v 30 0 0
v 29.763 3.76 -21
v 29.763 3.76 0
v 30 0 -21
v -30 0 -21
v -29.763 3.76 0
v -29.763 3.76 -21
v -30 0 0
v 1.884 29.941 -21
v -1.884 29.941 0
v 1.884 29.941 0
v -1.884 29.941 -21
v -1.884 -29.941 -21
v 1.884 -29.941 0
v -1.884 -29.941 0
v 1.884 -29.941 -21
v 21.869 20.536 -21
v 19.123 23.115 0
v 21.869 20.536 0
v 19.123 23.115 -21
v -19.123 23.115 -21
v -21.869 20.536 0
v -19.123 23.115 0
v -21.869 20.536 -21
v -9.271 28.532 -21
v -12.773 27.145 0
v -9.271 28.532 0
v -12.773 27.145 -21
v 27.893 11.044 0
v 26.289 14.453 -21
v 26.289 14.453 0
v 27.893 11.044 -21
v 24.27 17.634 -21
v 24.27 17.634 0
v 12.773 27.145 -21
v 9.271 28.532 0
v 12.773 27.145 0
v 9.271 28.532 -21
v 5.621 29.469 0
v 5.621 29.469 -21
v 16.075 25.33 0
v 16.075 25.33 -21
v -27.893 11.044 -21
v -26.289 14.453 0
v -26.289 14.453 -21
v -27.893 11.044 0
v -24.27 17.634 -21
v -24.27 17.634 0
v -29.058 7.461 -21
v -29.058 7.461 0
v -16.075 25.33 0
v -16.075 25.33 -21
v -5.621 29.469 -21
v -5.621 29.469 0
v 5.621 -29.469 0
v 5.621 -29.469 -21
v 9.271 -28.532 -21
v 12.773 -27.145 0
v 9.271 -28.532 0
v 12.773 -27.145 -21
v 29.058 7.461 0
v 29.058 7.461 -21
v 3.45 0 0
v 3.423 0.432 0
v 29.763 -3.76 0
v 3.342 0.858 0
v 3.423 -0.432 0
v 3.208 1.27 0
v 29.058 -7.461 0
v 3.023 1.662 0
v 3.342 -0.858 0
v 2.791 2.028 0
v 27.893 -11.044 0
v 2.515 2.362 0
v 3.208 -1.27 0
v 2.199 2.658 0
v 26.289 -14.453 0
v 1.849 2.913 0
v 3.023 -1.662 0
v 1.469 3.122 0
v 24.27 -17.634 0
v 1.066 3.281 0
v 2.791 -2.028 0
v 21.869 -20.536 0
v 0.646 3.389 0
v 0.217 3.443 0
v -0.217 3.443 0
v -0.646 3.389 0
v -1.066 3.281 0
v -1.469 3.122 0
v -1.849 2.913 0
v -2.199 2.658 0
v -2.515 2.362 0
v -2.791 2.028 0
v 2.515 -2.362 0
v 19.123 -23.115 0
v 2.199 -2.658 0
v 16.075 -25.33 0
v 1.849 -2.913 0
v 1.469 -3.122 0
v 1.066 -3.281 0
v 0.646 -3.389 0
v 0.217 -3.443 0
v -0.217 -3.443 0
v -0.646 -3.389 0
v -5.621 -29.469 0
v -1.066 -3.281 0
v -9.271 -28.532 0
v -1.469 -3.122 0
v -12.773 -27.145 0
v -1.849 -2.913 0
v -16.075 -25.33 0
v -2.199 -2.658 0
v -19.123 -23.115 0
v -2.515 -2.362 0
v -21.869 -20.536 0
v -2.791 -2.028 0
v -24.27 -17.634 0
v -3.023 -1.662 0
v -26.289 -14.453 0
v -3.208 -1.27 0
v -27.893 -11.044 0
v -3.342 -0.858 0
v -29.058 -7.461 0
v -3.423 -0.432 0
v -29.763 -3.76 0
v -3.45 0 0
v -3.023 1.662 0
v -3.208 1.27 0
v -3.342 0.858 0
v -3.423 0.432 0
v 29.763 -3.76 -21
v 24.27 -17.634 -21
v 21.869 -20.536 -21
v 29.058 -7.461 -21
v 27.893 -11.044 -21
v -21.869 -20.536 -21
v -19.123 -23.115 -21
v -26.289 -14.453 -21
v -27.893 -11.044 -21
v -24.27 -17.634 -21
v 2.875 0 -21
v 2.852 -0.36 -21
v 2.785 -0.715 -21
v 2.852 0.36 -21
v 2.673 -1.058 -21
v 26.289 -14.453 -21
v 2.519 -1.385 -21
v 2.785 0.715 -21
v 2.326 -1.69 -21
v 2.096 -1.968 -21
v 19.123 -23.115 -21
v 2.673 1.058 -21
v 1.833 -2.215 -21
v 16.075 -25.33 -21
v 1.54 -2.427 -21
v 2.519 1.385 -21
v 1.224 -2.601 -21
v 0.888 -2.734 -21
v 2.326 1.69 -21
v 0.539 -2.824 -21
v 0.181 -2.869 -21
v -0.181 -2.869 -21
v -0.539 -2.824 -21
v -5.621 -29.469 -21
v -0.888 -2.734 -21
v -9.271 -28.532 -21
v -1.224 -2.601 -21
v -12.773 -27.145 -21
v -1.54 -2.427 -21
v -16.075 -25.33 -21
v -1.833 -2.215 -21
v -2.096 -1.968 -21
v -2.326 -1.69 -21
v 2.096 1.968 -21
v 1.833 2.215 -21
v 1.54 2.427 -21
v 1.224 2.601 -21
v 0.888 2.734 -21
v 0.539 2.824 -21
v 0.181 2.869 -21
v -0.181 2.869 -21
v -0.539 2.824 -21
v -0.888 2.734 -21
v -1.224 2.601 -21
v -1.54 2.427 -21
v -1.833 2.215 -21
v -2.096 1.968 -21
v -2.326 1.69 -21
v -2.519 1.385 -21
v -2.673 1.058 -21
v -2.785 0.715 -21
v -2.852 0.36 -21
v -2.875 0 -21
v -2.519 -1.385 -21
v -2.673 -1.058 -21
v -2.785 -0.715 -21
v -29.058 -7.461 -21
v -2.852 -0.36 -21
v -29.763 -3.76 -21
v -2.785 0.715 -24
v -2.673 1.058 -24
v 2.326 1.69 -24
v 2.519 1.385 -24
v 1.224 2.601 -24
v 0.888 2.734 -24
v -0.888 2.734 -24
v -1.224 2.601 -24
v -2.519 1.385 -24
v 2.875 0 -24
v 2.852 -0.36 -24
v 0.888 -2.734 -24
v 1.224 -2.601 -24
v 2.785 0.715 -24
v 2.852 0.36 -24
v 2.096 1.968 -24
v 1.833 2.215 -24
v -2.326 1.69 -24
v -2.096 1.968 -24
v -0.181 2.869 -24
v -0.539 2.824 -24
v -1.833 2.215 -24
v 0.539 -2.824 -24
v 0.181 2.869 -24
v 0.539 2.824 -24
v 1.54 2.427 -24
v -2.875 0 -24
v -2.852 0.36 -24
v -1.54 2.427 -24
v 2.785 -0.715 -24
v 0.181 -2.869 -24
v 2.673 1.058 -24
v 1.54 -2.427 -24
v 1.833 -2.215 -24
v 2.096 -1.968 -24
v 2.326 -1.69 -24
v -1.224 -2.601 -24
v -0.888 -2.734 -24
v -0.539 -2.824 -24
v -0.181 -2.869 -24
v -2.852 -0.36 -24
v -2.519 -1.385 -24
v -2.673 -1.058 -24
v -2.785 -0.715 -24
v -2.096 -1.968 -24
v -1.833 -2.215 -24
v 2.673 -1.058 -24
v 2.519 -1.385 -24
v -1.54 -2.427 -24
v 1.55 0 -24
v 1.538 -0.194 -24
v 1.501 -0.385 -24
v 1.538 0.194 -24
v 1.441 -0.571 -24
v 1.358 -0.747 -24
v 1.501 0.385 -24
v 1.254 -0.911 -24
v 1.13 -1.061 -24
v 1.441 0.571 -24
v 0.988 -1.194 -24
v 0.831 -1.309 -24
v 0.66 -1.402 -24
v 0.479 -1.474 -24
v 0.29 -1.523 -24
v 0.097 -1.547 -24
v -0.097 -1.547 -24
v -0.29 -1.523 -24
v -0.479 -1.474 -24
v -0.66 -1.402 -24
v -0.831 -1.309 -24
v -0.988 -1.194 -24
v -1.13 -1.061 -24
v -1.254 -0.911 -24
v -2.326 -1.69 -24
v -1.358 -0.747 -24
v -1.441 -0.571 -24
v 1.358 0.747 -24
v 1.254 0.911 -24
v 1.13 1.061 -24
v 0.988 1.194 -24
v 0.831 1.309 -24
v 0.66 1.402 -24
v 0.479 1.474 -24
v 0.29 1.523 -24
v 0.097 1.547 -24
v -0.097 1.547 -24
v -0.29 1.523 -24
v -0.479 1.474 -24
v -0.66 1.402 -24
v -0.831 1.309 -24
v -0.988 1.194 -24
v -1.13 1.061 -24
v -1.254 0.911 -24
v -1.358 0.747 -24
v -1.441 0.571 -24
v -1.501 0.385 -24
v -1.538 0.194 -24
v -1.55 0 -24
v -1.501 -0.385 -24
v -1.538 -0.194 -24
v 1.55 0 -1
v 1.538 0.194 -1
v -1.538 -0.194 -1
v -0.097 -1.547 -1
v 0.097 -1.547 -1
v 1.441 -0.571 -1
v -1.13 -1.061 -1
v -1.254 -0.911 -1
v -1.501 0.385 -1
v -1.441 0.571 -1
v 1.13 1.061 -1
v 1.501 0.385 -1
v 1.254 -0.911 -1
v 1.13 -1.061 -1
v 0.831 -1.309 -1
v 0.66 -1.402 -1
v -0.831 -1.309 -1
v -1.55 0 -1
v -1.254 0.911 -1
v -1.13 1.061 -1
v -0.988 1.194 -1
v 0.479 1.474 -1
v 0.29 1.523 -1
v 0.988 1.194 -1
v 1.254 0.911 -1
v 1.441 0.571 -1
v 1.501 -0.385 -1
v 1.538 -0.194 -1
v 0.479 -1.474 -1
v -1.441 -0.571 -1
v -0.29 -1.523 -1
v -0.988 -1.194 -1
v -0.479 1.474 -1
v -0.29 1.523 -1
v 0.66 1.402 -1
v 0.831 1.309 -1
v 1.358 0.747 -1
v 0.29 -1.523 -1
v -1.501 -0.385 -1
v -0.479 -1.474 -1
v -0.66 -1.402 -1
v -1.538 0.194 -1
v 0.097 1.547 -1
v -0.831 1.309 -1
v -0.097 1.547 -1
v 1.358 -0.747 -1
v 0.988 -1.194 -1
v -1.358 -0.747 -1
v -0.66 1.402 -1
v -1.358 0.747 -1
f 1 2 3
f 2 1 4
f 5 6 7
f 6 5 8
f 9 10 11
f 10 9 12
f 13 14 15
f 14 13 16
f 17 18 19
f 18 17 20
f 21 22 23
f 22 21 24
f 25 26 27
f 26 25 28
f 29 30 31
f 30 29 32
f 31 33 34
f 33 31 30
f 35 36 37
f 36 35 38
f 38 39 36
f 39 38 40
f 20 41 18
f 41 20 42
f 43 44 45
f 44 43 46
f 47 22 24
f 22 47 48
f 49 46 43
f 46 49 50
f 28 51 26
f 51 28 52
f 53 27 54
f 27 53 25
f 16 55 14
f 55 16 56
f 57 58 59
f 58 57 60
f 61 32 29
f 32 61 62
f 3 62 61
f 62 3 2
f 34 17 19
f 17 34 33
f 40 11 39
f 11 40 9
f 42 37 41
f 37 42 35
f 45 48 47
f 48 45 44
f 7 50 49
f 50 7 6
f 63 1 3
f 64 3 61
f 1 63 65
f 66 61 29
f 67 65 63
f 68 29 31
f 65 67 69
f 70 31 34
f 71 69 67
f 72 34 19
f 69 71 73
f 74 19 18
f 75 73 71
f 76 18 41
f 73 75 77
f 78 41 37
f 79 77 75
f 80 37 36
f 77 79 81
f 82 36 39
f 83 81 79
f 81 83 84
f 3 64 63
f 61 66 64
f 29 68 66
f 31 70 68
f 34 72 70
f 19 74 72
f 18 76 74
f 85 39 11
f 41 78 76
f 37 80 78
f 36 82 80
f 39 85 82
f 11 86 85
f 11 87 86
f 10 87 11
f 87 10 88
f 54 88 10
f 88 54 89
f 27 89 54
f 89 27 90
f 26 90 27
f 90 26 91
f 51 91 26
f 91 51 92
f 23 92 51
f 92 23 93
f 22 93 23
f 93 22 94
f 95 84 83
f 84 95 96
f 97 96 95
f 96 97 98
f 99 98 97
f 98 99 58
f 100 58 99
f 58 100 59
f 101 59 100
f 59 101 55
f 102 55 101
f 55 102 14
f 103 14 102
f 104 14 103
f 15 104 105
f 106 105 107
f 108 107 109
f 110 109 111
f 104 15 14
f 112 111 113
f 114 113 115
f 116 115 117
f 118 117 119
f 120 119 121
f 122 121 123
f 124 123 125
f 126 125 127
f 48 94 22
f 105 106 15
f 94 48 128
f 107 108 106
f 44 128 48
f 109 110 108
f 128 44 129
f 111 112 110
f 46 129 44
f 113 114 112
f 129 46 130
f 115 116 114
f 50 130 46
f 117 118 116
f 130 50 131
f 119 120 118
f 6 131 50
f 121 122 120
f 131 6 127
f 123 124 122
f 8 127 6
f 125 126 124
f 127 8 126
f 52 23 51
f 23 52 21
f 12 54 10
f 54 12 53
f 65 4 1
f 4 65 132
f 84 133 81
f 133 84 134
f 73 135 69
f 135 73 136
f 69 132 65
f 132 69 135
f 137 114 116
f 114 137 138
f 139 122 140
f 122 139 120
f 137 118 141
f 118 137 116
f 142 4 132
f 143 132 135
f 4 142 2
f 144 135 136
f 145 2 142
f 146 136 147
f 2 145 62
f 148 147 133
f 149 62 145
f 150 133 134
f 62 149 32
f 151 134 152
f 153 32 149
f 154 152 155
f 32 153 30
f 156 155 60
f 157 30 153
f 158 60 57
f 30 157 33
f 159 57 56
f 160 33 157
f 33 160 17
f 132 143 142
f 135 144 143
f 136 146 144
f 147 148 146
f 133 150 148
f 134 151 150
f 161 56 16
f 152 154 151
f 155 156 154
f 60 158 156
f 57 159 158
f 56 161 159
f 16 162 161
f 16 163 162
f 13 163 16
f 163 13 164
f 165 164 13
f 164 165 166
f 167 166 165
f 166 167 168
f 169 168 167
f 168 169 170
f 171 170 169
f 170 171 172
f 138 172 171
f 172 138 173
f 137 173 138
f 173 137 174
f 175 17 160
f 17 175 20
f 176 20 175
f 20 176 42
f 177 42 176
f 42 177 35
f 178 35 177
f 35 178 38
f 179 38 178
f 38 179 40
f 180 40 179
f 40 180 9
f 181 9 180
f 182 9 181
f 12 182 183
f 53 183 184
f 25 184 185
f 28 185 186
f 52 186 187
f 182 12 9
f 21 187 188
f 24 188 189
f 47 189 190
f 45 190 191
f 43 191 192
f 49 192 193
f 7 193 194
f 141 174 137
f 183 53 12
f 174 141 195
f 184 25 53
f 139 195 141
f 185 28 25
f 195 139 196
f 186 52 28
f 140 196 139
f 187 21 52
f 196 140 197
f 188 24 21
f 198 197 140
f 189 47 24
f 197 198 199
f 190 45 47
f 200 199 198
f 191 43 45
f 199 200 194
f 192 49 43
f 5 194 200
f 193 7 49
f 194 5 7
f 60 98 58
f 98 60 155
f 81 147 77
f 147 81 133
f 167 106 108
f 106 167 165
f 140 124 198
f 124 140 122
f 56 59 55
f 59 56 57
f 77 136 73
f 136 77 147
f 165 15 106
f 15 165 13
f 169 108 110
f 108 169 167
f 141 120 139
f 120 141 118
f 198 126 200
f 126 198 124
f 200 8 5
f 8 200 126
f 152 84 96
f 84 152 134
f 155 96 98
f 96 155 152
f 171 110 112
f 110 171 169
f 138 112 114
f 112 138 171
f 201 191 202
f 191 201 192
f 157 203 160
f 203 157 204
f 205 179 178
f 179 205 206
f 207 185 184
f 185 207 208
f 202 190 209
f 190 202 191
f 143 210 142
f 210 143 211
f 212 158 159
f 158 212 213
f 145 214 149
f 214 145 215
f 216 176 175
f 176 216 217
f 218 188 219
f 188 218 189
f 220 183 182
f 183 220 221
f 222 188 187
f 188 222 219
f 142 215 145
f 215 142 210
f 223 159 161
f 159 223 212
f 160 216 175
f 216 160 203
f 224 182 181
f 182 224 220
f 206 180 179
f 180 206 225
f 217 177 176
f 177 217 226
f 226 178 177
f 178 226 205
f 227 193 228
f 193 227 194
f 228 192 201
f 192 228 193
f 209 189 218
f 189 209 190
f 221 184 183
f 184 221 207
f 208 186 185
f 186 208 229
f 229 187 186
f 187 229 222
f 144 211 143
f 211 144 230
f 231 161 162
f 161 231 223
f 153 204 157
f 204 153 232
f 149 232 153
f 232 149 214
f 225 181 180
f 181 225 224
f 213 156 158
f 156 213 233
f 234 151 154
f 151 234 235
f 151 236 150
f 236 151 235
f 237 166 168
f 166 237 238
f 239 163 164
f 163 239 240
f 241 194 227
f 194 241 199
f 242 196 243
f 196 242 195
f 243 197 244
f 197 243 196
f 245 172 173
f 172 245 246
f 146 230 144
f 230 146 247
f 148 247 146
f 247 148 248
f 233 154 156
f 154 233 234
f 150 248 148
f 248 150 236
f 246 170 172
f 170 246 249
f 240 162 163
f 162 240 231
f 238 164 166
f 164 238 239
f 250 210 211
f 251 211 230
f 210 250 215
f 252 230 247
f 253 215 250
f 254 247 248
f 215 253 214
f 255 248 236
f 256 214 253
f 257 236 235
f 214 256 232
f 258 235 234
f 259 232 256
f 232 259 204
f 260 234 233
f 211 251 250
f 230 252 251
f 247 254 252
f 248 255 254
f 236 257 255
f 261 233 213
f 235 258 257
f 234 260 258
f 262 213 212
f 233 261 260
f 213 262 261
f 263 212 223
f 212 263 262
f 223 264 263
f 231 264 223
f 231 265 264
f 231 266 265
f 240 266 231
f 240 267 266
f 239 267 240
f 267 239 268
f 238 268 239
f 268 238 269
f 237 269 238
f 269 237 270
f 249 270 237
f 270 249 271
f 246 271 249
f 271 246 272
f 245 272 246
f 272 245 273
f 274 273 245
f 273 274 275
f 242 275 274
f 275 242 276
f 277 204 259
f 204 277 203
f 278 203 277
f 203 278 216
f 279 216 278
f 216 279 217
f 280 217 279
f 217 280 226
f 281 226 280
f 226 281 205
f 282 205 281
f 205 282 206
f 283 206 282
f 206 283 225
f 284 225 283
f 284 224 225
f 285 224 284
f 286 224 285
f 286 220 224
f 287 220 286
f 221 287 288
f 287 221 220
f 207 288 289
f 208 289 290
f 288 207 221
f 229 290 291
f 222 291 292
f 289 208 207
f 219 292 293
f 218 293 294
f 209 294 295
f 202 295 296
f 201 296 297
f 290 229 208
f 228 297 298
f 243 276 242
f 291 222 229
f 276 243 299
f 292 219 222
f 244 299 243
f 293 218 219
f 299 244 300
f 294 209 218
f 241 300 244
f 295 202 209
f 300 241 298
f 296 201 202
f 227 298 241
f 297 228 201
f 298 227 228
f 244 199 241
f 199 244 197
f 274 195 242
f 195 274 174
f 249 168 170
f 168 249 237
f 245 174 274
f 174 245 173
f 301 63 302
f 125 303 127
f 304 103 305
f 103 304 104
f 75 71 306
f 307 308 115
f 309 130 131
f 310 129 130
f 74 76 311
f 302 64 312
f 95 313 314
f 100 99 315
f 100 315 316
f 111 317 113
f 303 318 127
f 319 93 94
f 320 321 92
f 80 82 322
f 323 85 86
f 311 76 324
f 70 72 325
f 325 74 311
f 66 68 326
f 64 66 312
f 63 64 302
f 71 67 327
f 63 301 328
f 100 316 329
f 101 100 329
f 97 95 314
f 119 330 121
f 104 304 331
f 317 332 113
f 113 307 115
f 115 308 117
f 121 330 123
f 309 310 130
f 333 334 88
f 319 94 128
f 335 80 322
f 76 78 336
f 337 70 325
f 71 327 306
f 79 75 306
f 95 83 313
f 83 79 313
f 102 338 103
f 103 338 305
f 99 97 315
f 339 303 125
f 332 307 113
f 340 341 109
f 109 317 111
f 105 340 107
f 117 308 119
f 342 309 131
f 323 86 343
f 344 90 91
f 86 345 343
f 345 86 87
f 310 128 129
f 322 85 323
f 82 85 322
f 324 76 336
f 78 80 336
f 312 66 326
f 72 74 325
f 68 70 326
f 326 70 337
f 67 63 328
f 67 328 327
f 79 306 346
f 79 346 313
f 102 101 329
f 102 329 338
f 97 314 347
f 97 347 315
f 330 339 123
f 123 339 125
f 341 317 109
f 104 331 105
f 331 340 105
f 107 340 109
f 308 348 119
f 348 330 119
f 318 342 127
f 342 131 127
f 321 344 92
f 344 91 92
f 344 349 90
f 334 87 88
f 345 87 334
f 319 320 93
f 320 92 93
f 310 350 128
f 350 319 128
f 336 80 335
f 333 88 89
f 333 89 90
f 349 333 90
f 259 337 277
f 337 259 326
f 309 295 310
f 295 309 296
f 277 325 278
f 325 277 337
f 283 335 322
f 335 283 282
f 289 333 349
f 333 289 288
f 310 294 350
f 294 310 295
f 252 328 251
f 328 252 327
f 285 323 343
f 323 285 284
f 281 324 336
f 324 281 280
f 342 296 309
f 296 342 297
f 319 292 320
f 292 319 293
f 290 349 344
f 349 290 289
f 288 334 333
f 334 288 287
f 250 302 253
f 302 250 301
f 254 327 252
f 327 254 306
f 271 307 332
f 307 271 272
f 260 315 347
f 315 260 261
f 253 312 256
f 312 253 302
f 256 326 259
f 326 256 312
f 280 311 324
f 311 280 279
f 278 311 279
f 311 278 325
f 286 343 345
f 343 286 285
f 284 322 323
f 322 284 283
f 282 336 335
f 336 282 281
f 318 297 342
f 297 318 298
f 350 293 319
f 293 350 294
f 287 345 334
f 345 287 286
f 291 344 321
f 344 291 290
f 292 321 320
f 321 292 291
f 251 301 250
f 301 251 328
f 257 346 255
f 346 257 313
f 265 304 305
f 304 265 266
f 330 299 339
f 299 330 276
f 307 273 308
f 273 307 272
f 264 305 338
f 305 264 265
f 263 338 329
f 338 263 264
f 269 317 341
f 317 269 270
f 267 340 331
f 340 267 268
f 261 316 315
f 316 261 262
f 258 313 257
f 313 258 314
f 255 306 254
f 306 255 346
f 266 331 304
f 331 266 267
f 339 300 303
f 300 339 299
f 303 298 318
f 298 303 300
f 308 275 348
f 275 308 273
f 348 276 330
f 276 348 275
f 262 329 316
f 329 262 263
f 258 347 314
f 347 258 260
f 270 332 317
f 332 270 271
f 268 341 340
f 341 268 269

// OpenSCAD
$fn = 50;

difference() {
	union() {
		translate(v = [0, 0, -21.0]) {
			cylinder(h = 21, r = 30.0);
		}
		#translate(v = [0, 0, -24.0]) {
			cylinder(h = 24, r = 2.875);
		}
	}
	union() {
		translate(v = [0, 0, 0]) {
			rotate(a = [0, 0, 0]) {
				difference() {
					union() {
						translate(v = [0, 0, -24.0]) {
							cylinder(h = 24, r = 1.25);
						}
						translate(v = [0, 0, -1.0]) {
							cylinder(h = 1.0, r1 = 1.55, r2 = 3.45);
						}
						translate(v = [0, 0, -24.0]) {
							cylinder(h = 24, r = 1.55);
						}
						translate(v = [0, 0, -24.0]) {
							cylinder(h = 24, r = 1.25);
						}
					}
					union();
				}
			}
		}
	}
}
